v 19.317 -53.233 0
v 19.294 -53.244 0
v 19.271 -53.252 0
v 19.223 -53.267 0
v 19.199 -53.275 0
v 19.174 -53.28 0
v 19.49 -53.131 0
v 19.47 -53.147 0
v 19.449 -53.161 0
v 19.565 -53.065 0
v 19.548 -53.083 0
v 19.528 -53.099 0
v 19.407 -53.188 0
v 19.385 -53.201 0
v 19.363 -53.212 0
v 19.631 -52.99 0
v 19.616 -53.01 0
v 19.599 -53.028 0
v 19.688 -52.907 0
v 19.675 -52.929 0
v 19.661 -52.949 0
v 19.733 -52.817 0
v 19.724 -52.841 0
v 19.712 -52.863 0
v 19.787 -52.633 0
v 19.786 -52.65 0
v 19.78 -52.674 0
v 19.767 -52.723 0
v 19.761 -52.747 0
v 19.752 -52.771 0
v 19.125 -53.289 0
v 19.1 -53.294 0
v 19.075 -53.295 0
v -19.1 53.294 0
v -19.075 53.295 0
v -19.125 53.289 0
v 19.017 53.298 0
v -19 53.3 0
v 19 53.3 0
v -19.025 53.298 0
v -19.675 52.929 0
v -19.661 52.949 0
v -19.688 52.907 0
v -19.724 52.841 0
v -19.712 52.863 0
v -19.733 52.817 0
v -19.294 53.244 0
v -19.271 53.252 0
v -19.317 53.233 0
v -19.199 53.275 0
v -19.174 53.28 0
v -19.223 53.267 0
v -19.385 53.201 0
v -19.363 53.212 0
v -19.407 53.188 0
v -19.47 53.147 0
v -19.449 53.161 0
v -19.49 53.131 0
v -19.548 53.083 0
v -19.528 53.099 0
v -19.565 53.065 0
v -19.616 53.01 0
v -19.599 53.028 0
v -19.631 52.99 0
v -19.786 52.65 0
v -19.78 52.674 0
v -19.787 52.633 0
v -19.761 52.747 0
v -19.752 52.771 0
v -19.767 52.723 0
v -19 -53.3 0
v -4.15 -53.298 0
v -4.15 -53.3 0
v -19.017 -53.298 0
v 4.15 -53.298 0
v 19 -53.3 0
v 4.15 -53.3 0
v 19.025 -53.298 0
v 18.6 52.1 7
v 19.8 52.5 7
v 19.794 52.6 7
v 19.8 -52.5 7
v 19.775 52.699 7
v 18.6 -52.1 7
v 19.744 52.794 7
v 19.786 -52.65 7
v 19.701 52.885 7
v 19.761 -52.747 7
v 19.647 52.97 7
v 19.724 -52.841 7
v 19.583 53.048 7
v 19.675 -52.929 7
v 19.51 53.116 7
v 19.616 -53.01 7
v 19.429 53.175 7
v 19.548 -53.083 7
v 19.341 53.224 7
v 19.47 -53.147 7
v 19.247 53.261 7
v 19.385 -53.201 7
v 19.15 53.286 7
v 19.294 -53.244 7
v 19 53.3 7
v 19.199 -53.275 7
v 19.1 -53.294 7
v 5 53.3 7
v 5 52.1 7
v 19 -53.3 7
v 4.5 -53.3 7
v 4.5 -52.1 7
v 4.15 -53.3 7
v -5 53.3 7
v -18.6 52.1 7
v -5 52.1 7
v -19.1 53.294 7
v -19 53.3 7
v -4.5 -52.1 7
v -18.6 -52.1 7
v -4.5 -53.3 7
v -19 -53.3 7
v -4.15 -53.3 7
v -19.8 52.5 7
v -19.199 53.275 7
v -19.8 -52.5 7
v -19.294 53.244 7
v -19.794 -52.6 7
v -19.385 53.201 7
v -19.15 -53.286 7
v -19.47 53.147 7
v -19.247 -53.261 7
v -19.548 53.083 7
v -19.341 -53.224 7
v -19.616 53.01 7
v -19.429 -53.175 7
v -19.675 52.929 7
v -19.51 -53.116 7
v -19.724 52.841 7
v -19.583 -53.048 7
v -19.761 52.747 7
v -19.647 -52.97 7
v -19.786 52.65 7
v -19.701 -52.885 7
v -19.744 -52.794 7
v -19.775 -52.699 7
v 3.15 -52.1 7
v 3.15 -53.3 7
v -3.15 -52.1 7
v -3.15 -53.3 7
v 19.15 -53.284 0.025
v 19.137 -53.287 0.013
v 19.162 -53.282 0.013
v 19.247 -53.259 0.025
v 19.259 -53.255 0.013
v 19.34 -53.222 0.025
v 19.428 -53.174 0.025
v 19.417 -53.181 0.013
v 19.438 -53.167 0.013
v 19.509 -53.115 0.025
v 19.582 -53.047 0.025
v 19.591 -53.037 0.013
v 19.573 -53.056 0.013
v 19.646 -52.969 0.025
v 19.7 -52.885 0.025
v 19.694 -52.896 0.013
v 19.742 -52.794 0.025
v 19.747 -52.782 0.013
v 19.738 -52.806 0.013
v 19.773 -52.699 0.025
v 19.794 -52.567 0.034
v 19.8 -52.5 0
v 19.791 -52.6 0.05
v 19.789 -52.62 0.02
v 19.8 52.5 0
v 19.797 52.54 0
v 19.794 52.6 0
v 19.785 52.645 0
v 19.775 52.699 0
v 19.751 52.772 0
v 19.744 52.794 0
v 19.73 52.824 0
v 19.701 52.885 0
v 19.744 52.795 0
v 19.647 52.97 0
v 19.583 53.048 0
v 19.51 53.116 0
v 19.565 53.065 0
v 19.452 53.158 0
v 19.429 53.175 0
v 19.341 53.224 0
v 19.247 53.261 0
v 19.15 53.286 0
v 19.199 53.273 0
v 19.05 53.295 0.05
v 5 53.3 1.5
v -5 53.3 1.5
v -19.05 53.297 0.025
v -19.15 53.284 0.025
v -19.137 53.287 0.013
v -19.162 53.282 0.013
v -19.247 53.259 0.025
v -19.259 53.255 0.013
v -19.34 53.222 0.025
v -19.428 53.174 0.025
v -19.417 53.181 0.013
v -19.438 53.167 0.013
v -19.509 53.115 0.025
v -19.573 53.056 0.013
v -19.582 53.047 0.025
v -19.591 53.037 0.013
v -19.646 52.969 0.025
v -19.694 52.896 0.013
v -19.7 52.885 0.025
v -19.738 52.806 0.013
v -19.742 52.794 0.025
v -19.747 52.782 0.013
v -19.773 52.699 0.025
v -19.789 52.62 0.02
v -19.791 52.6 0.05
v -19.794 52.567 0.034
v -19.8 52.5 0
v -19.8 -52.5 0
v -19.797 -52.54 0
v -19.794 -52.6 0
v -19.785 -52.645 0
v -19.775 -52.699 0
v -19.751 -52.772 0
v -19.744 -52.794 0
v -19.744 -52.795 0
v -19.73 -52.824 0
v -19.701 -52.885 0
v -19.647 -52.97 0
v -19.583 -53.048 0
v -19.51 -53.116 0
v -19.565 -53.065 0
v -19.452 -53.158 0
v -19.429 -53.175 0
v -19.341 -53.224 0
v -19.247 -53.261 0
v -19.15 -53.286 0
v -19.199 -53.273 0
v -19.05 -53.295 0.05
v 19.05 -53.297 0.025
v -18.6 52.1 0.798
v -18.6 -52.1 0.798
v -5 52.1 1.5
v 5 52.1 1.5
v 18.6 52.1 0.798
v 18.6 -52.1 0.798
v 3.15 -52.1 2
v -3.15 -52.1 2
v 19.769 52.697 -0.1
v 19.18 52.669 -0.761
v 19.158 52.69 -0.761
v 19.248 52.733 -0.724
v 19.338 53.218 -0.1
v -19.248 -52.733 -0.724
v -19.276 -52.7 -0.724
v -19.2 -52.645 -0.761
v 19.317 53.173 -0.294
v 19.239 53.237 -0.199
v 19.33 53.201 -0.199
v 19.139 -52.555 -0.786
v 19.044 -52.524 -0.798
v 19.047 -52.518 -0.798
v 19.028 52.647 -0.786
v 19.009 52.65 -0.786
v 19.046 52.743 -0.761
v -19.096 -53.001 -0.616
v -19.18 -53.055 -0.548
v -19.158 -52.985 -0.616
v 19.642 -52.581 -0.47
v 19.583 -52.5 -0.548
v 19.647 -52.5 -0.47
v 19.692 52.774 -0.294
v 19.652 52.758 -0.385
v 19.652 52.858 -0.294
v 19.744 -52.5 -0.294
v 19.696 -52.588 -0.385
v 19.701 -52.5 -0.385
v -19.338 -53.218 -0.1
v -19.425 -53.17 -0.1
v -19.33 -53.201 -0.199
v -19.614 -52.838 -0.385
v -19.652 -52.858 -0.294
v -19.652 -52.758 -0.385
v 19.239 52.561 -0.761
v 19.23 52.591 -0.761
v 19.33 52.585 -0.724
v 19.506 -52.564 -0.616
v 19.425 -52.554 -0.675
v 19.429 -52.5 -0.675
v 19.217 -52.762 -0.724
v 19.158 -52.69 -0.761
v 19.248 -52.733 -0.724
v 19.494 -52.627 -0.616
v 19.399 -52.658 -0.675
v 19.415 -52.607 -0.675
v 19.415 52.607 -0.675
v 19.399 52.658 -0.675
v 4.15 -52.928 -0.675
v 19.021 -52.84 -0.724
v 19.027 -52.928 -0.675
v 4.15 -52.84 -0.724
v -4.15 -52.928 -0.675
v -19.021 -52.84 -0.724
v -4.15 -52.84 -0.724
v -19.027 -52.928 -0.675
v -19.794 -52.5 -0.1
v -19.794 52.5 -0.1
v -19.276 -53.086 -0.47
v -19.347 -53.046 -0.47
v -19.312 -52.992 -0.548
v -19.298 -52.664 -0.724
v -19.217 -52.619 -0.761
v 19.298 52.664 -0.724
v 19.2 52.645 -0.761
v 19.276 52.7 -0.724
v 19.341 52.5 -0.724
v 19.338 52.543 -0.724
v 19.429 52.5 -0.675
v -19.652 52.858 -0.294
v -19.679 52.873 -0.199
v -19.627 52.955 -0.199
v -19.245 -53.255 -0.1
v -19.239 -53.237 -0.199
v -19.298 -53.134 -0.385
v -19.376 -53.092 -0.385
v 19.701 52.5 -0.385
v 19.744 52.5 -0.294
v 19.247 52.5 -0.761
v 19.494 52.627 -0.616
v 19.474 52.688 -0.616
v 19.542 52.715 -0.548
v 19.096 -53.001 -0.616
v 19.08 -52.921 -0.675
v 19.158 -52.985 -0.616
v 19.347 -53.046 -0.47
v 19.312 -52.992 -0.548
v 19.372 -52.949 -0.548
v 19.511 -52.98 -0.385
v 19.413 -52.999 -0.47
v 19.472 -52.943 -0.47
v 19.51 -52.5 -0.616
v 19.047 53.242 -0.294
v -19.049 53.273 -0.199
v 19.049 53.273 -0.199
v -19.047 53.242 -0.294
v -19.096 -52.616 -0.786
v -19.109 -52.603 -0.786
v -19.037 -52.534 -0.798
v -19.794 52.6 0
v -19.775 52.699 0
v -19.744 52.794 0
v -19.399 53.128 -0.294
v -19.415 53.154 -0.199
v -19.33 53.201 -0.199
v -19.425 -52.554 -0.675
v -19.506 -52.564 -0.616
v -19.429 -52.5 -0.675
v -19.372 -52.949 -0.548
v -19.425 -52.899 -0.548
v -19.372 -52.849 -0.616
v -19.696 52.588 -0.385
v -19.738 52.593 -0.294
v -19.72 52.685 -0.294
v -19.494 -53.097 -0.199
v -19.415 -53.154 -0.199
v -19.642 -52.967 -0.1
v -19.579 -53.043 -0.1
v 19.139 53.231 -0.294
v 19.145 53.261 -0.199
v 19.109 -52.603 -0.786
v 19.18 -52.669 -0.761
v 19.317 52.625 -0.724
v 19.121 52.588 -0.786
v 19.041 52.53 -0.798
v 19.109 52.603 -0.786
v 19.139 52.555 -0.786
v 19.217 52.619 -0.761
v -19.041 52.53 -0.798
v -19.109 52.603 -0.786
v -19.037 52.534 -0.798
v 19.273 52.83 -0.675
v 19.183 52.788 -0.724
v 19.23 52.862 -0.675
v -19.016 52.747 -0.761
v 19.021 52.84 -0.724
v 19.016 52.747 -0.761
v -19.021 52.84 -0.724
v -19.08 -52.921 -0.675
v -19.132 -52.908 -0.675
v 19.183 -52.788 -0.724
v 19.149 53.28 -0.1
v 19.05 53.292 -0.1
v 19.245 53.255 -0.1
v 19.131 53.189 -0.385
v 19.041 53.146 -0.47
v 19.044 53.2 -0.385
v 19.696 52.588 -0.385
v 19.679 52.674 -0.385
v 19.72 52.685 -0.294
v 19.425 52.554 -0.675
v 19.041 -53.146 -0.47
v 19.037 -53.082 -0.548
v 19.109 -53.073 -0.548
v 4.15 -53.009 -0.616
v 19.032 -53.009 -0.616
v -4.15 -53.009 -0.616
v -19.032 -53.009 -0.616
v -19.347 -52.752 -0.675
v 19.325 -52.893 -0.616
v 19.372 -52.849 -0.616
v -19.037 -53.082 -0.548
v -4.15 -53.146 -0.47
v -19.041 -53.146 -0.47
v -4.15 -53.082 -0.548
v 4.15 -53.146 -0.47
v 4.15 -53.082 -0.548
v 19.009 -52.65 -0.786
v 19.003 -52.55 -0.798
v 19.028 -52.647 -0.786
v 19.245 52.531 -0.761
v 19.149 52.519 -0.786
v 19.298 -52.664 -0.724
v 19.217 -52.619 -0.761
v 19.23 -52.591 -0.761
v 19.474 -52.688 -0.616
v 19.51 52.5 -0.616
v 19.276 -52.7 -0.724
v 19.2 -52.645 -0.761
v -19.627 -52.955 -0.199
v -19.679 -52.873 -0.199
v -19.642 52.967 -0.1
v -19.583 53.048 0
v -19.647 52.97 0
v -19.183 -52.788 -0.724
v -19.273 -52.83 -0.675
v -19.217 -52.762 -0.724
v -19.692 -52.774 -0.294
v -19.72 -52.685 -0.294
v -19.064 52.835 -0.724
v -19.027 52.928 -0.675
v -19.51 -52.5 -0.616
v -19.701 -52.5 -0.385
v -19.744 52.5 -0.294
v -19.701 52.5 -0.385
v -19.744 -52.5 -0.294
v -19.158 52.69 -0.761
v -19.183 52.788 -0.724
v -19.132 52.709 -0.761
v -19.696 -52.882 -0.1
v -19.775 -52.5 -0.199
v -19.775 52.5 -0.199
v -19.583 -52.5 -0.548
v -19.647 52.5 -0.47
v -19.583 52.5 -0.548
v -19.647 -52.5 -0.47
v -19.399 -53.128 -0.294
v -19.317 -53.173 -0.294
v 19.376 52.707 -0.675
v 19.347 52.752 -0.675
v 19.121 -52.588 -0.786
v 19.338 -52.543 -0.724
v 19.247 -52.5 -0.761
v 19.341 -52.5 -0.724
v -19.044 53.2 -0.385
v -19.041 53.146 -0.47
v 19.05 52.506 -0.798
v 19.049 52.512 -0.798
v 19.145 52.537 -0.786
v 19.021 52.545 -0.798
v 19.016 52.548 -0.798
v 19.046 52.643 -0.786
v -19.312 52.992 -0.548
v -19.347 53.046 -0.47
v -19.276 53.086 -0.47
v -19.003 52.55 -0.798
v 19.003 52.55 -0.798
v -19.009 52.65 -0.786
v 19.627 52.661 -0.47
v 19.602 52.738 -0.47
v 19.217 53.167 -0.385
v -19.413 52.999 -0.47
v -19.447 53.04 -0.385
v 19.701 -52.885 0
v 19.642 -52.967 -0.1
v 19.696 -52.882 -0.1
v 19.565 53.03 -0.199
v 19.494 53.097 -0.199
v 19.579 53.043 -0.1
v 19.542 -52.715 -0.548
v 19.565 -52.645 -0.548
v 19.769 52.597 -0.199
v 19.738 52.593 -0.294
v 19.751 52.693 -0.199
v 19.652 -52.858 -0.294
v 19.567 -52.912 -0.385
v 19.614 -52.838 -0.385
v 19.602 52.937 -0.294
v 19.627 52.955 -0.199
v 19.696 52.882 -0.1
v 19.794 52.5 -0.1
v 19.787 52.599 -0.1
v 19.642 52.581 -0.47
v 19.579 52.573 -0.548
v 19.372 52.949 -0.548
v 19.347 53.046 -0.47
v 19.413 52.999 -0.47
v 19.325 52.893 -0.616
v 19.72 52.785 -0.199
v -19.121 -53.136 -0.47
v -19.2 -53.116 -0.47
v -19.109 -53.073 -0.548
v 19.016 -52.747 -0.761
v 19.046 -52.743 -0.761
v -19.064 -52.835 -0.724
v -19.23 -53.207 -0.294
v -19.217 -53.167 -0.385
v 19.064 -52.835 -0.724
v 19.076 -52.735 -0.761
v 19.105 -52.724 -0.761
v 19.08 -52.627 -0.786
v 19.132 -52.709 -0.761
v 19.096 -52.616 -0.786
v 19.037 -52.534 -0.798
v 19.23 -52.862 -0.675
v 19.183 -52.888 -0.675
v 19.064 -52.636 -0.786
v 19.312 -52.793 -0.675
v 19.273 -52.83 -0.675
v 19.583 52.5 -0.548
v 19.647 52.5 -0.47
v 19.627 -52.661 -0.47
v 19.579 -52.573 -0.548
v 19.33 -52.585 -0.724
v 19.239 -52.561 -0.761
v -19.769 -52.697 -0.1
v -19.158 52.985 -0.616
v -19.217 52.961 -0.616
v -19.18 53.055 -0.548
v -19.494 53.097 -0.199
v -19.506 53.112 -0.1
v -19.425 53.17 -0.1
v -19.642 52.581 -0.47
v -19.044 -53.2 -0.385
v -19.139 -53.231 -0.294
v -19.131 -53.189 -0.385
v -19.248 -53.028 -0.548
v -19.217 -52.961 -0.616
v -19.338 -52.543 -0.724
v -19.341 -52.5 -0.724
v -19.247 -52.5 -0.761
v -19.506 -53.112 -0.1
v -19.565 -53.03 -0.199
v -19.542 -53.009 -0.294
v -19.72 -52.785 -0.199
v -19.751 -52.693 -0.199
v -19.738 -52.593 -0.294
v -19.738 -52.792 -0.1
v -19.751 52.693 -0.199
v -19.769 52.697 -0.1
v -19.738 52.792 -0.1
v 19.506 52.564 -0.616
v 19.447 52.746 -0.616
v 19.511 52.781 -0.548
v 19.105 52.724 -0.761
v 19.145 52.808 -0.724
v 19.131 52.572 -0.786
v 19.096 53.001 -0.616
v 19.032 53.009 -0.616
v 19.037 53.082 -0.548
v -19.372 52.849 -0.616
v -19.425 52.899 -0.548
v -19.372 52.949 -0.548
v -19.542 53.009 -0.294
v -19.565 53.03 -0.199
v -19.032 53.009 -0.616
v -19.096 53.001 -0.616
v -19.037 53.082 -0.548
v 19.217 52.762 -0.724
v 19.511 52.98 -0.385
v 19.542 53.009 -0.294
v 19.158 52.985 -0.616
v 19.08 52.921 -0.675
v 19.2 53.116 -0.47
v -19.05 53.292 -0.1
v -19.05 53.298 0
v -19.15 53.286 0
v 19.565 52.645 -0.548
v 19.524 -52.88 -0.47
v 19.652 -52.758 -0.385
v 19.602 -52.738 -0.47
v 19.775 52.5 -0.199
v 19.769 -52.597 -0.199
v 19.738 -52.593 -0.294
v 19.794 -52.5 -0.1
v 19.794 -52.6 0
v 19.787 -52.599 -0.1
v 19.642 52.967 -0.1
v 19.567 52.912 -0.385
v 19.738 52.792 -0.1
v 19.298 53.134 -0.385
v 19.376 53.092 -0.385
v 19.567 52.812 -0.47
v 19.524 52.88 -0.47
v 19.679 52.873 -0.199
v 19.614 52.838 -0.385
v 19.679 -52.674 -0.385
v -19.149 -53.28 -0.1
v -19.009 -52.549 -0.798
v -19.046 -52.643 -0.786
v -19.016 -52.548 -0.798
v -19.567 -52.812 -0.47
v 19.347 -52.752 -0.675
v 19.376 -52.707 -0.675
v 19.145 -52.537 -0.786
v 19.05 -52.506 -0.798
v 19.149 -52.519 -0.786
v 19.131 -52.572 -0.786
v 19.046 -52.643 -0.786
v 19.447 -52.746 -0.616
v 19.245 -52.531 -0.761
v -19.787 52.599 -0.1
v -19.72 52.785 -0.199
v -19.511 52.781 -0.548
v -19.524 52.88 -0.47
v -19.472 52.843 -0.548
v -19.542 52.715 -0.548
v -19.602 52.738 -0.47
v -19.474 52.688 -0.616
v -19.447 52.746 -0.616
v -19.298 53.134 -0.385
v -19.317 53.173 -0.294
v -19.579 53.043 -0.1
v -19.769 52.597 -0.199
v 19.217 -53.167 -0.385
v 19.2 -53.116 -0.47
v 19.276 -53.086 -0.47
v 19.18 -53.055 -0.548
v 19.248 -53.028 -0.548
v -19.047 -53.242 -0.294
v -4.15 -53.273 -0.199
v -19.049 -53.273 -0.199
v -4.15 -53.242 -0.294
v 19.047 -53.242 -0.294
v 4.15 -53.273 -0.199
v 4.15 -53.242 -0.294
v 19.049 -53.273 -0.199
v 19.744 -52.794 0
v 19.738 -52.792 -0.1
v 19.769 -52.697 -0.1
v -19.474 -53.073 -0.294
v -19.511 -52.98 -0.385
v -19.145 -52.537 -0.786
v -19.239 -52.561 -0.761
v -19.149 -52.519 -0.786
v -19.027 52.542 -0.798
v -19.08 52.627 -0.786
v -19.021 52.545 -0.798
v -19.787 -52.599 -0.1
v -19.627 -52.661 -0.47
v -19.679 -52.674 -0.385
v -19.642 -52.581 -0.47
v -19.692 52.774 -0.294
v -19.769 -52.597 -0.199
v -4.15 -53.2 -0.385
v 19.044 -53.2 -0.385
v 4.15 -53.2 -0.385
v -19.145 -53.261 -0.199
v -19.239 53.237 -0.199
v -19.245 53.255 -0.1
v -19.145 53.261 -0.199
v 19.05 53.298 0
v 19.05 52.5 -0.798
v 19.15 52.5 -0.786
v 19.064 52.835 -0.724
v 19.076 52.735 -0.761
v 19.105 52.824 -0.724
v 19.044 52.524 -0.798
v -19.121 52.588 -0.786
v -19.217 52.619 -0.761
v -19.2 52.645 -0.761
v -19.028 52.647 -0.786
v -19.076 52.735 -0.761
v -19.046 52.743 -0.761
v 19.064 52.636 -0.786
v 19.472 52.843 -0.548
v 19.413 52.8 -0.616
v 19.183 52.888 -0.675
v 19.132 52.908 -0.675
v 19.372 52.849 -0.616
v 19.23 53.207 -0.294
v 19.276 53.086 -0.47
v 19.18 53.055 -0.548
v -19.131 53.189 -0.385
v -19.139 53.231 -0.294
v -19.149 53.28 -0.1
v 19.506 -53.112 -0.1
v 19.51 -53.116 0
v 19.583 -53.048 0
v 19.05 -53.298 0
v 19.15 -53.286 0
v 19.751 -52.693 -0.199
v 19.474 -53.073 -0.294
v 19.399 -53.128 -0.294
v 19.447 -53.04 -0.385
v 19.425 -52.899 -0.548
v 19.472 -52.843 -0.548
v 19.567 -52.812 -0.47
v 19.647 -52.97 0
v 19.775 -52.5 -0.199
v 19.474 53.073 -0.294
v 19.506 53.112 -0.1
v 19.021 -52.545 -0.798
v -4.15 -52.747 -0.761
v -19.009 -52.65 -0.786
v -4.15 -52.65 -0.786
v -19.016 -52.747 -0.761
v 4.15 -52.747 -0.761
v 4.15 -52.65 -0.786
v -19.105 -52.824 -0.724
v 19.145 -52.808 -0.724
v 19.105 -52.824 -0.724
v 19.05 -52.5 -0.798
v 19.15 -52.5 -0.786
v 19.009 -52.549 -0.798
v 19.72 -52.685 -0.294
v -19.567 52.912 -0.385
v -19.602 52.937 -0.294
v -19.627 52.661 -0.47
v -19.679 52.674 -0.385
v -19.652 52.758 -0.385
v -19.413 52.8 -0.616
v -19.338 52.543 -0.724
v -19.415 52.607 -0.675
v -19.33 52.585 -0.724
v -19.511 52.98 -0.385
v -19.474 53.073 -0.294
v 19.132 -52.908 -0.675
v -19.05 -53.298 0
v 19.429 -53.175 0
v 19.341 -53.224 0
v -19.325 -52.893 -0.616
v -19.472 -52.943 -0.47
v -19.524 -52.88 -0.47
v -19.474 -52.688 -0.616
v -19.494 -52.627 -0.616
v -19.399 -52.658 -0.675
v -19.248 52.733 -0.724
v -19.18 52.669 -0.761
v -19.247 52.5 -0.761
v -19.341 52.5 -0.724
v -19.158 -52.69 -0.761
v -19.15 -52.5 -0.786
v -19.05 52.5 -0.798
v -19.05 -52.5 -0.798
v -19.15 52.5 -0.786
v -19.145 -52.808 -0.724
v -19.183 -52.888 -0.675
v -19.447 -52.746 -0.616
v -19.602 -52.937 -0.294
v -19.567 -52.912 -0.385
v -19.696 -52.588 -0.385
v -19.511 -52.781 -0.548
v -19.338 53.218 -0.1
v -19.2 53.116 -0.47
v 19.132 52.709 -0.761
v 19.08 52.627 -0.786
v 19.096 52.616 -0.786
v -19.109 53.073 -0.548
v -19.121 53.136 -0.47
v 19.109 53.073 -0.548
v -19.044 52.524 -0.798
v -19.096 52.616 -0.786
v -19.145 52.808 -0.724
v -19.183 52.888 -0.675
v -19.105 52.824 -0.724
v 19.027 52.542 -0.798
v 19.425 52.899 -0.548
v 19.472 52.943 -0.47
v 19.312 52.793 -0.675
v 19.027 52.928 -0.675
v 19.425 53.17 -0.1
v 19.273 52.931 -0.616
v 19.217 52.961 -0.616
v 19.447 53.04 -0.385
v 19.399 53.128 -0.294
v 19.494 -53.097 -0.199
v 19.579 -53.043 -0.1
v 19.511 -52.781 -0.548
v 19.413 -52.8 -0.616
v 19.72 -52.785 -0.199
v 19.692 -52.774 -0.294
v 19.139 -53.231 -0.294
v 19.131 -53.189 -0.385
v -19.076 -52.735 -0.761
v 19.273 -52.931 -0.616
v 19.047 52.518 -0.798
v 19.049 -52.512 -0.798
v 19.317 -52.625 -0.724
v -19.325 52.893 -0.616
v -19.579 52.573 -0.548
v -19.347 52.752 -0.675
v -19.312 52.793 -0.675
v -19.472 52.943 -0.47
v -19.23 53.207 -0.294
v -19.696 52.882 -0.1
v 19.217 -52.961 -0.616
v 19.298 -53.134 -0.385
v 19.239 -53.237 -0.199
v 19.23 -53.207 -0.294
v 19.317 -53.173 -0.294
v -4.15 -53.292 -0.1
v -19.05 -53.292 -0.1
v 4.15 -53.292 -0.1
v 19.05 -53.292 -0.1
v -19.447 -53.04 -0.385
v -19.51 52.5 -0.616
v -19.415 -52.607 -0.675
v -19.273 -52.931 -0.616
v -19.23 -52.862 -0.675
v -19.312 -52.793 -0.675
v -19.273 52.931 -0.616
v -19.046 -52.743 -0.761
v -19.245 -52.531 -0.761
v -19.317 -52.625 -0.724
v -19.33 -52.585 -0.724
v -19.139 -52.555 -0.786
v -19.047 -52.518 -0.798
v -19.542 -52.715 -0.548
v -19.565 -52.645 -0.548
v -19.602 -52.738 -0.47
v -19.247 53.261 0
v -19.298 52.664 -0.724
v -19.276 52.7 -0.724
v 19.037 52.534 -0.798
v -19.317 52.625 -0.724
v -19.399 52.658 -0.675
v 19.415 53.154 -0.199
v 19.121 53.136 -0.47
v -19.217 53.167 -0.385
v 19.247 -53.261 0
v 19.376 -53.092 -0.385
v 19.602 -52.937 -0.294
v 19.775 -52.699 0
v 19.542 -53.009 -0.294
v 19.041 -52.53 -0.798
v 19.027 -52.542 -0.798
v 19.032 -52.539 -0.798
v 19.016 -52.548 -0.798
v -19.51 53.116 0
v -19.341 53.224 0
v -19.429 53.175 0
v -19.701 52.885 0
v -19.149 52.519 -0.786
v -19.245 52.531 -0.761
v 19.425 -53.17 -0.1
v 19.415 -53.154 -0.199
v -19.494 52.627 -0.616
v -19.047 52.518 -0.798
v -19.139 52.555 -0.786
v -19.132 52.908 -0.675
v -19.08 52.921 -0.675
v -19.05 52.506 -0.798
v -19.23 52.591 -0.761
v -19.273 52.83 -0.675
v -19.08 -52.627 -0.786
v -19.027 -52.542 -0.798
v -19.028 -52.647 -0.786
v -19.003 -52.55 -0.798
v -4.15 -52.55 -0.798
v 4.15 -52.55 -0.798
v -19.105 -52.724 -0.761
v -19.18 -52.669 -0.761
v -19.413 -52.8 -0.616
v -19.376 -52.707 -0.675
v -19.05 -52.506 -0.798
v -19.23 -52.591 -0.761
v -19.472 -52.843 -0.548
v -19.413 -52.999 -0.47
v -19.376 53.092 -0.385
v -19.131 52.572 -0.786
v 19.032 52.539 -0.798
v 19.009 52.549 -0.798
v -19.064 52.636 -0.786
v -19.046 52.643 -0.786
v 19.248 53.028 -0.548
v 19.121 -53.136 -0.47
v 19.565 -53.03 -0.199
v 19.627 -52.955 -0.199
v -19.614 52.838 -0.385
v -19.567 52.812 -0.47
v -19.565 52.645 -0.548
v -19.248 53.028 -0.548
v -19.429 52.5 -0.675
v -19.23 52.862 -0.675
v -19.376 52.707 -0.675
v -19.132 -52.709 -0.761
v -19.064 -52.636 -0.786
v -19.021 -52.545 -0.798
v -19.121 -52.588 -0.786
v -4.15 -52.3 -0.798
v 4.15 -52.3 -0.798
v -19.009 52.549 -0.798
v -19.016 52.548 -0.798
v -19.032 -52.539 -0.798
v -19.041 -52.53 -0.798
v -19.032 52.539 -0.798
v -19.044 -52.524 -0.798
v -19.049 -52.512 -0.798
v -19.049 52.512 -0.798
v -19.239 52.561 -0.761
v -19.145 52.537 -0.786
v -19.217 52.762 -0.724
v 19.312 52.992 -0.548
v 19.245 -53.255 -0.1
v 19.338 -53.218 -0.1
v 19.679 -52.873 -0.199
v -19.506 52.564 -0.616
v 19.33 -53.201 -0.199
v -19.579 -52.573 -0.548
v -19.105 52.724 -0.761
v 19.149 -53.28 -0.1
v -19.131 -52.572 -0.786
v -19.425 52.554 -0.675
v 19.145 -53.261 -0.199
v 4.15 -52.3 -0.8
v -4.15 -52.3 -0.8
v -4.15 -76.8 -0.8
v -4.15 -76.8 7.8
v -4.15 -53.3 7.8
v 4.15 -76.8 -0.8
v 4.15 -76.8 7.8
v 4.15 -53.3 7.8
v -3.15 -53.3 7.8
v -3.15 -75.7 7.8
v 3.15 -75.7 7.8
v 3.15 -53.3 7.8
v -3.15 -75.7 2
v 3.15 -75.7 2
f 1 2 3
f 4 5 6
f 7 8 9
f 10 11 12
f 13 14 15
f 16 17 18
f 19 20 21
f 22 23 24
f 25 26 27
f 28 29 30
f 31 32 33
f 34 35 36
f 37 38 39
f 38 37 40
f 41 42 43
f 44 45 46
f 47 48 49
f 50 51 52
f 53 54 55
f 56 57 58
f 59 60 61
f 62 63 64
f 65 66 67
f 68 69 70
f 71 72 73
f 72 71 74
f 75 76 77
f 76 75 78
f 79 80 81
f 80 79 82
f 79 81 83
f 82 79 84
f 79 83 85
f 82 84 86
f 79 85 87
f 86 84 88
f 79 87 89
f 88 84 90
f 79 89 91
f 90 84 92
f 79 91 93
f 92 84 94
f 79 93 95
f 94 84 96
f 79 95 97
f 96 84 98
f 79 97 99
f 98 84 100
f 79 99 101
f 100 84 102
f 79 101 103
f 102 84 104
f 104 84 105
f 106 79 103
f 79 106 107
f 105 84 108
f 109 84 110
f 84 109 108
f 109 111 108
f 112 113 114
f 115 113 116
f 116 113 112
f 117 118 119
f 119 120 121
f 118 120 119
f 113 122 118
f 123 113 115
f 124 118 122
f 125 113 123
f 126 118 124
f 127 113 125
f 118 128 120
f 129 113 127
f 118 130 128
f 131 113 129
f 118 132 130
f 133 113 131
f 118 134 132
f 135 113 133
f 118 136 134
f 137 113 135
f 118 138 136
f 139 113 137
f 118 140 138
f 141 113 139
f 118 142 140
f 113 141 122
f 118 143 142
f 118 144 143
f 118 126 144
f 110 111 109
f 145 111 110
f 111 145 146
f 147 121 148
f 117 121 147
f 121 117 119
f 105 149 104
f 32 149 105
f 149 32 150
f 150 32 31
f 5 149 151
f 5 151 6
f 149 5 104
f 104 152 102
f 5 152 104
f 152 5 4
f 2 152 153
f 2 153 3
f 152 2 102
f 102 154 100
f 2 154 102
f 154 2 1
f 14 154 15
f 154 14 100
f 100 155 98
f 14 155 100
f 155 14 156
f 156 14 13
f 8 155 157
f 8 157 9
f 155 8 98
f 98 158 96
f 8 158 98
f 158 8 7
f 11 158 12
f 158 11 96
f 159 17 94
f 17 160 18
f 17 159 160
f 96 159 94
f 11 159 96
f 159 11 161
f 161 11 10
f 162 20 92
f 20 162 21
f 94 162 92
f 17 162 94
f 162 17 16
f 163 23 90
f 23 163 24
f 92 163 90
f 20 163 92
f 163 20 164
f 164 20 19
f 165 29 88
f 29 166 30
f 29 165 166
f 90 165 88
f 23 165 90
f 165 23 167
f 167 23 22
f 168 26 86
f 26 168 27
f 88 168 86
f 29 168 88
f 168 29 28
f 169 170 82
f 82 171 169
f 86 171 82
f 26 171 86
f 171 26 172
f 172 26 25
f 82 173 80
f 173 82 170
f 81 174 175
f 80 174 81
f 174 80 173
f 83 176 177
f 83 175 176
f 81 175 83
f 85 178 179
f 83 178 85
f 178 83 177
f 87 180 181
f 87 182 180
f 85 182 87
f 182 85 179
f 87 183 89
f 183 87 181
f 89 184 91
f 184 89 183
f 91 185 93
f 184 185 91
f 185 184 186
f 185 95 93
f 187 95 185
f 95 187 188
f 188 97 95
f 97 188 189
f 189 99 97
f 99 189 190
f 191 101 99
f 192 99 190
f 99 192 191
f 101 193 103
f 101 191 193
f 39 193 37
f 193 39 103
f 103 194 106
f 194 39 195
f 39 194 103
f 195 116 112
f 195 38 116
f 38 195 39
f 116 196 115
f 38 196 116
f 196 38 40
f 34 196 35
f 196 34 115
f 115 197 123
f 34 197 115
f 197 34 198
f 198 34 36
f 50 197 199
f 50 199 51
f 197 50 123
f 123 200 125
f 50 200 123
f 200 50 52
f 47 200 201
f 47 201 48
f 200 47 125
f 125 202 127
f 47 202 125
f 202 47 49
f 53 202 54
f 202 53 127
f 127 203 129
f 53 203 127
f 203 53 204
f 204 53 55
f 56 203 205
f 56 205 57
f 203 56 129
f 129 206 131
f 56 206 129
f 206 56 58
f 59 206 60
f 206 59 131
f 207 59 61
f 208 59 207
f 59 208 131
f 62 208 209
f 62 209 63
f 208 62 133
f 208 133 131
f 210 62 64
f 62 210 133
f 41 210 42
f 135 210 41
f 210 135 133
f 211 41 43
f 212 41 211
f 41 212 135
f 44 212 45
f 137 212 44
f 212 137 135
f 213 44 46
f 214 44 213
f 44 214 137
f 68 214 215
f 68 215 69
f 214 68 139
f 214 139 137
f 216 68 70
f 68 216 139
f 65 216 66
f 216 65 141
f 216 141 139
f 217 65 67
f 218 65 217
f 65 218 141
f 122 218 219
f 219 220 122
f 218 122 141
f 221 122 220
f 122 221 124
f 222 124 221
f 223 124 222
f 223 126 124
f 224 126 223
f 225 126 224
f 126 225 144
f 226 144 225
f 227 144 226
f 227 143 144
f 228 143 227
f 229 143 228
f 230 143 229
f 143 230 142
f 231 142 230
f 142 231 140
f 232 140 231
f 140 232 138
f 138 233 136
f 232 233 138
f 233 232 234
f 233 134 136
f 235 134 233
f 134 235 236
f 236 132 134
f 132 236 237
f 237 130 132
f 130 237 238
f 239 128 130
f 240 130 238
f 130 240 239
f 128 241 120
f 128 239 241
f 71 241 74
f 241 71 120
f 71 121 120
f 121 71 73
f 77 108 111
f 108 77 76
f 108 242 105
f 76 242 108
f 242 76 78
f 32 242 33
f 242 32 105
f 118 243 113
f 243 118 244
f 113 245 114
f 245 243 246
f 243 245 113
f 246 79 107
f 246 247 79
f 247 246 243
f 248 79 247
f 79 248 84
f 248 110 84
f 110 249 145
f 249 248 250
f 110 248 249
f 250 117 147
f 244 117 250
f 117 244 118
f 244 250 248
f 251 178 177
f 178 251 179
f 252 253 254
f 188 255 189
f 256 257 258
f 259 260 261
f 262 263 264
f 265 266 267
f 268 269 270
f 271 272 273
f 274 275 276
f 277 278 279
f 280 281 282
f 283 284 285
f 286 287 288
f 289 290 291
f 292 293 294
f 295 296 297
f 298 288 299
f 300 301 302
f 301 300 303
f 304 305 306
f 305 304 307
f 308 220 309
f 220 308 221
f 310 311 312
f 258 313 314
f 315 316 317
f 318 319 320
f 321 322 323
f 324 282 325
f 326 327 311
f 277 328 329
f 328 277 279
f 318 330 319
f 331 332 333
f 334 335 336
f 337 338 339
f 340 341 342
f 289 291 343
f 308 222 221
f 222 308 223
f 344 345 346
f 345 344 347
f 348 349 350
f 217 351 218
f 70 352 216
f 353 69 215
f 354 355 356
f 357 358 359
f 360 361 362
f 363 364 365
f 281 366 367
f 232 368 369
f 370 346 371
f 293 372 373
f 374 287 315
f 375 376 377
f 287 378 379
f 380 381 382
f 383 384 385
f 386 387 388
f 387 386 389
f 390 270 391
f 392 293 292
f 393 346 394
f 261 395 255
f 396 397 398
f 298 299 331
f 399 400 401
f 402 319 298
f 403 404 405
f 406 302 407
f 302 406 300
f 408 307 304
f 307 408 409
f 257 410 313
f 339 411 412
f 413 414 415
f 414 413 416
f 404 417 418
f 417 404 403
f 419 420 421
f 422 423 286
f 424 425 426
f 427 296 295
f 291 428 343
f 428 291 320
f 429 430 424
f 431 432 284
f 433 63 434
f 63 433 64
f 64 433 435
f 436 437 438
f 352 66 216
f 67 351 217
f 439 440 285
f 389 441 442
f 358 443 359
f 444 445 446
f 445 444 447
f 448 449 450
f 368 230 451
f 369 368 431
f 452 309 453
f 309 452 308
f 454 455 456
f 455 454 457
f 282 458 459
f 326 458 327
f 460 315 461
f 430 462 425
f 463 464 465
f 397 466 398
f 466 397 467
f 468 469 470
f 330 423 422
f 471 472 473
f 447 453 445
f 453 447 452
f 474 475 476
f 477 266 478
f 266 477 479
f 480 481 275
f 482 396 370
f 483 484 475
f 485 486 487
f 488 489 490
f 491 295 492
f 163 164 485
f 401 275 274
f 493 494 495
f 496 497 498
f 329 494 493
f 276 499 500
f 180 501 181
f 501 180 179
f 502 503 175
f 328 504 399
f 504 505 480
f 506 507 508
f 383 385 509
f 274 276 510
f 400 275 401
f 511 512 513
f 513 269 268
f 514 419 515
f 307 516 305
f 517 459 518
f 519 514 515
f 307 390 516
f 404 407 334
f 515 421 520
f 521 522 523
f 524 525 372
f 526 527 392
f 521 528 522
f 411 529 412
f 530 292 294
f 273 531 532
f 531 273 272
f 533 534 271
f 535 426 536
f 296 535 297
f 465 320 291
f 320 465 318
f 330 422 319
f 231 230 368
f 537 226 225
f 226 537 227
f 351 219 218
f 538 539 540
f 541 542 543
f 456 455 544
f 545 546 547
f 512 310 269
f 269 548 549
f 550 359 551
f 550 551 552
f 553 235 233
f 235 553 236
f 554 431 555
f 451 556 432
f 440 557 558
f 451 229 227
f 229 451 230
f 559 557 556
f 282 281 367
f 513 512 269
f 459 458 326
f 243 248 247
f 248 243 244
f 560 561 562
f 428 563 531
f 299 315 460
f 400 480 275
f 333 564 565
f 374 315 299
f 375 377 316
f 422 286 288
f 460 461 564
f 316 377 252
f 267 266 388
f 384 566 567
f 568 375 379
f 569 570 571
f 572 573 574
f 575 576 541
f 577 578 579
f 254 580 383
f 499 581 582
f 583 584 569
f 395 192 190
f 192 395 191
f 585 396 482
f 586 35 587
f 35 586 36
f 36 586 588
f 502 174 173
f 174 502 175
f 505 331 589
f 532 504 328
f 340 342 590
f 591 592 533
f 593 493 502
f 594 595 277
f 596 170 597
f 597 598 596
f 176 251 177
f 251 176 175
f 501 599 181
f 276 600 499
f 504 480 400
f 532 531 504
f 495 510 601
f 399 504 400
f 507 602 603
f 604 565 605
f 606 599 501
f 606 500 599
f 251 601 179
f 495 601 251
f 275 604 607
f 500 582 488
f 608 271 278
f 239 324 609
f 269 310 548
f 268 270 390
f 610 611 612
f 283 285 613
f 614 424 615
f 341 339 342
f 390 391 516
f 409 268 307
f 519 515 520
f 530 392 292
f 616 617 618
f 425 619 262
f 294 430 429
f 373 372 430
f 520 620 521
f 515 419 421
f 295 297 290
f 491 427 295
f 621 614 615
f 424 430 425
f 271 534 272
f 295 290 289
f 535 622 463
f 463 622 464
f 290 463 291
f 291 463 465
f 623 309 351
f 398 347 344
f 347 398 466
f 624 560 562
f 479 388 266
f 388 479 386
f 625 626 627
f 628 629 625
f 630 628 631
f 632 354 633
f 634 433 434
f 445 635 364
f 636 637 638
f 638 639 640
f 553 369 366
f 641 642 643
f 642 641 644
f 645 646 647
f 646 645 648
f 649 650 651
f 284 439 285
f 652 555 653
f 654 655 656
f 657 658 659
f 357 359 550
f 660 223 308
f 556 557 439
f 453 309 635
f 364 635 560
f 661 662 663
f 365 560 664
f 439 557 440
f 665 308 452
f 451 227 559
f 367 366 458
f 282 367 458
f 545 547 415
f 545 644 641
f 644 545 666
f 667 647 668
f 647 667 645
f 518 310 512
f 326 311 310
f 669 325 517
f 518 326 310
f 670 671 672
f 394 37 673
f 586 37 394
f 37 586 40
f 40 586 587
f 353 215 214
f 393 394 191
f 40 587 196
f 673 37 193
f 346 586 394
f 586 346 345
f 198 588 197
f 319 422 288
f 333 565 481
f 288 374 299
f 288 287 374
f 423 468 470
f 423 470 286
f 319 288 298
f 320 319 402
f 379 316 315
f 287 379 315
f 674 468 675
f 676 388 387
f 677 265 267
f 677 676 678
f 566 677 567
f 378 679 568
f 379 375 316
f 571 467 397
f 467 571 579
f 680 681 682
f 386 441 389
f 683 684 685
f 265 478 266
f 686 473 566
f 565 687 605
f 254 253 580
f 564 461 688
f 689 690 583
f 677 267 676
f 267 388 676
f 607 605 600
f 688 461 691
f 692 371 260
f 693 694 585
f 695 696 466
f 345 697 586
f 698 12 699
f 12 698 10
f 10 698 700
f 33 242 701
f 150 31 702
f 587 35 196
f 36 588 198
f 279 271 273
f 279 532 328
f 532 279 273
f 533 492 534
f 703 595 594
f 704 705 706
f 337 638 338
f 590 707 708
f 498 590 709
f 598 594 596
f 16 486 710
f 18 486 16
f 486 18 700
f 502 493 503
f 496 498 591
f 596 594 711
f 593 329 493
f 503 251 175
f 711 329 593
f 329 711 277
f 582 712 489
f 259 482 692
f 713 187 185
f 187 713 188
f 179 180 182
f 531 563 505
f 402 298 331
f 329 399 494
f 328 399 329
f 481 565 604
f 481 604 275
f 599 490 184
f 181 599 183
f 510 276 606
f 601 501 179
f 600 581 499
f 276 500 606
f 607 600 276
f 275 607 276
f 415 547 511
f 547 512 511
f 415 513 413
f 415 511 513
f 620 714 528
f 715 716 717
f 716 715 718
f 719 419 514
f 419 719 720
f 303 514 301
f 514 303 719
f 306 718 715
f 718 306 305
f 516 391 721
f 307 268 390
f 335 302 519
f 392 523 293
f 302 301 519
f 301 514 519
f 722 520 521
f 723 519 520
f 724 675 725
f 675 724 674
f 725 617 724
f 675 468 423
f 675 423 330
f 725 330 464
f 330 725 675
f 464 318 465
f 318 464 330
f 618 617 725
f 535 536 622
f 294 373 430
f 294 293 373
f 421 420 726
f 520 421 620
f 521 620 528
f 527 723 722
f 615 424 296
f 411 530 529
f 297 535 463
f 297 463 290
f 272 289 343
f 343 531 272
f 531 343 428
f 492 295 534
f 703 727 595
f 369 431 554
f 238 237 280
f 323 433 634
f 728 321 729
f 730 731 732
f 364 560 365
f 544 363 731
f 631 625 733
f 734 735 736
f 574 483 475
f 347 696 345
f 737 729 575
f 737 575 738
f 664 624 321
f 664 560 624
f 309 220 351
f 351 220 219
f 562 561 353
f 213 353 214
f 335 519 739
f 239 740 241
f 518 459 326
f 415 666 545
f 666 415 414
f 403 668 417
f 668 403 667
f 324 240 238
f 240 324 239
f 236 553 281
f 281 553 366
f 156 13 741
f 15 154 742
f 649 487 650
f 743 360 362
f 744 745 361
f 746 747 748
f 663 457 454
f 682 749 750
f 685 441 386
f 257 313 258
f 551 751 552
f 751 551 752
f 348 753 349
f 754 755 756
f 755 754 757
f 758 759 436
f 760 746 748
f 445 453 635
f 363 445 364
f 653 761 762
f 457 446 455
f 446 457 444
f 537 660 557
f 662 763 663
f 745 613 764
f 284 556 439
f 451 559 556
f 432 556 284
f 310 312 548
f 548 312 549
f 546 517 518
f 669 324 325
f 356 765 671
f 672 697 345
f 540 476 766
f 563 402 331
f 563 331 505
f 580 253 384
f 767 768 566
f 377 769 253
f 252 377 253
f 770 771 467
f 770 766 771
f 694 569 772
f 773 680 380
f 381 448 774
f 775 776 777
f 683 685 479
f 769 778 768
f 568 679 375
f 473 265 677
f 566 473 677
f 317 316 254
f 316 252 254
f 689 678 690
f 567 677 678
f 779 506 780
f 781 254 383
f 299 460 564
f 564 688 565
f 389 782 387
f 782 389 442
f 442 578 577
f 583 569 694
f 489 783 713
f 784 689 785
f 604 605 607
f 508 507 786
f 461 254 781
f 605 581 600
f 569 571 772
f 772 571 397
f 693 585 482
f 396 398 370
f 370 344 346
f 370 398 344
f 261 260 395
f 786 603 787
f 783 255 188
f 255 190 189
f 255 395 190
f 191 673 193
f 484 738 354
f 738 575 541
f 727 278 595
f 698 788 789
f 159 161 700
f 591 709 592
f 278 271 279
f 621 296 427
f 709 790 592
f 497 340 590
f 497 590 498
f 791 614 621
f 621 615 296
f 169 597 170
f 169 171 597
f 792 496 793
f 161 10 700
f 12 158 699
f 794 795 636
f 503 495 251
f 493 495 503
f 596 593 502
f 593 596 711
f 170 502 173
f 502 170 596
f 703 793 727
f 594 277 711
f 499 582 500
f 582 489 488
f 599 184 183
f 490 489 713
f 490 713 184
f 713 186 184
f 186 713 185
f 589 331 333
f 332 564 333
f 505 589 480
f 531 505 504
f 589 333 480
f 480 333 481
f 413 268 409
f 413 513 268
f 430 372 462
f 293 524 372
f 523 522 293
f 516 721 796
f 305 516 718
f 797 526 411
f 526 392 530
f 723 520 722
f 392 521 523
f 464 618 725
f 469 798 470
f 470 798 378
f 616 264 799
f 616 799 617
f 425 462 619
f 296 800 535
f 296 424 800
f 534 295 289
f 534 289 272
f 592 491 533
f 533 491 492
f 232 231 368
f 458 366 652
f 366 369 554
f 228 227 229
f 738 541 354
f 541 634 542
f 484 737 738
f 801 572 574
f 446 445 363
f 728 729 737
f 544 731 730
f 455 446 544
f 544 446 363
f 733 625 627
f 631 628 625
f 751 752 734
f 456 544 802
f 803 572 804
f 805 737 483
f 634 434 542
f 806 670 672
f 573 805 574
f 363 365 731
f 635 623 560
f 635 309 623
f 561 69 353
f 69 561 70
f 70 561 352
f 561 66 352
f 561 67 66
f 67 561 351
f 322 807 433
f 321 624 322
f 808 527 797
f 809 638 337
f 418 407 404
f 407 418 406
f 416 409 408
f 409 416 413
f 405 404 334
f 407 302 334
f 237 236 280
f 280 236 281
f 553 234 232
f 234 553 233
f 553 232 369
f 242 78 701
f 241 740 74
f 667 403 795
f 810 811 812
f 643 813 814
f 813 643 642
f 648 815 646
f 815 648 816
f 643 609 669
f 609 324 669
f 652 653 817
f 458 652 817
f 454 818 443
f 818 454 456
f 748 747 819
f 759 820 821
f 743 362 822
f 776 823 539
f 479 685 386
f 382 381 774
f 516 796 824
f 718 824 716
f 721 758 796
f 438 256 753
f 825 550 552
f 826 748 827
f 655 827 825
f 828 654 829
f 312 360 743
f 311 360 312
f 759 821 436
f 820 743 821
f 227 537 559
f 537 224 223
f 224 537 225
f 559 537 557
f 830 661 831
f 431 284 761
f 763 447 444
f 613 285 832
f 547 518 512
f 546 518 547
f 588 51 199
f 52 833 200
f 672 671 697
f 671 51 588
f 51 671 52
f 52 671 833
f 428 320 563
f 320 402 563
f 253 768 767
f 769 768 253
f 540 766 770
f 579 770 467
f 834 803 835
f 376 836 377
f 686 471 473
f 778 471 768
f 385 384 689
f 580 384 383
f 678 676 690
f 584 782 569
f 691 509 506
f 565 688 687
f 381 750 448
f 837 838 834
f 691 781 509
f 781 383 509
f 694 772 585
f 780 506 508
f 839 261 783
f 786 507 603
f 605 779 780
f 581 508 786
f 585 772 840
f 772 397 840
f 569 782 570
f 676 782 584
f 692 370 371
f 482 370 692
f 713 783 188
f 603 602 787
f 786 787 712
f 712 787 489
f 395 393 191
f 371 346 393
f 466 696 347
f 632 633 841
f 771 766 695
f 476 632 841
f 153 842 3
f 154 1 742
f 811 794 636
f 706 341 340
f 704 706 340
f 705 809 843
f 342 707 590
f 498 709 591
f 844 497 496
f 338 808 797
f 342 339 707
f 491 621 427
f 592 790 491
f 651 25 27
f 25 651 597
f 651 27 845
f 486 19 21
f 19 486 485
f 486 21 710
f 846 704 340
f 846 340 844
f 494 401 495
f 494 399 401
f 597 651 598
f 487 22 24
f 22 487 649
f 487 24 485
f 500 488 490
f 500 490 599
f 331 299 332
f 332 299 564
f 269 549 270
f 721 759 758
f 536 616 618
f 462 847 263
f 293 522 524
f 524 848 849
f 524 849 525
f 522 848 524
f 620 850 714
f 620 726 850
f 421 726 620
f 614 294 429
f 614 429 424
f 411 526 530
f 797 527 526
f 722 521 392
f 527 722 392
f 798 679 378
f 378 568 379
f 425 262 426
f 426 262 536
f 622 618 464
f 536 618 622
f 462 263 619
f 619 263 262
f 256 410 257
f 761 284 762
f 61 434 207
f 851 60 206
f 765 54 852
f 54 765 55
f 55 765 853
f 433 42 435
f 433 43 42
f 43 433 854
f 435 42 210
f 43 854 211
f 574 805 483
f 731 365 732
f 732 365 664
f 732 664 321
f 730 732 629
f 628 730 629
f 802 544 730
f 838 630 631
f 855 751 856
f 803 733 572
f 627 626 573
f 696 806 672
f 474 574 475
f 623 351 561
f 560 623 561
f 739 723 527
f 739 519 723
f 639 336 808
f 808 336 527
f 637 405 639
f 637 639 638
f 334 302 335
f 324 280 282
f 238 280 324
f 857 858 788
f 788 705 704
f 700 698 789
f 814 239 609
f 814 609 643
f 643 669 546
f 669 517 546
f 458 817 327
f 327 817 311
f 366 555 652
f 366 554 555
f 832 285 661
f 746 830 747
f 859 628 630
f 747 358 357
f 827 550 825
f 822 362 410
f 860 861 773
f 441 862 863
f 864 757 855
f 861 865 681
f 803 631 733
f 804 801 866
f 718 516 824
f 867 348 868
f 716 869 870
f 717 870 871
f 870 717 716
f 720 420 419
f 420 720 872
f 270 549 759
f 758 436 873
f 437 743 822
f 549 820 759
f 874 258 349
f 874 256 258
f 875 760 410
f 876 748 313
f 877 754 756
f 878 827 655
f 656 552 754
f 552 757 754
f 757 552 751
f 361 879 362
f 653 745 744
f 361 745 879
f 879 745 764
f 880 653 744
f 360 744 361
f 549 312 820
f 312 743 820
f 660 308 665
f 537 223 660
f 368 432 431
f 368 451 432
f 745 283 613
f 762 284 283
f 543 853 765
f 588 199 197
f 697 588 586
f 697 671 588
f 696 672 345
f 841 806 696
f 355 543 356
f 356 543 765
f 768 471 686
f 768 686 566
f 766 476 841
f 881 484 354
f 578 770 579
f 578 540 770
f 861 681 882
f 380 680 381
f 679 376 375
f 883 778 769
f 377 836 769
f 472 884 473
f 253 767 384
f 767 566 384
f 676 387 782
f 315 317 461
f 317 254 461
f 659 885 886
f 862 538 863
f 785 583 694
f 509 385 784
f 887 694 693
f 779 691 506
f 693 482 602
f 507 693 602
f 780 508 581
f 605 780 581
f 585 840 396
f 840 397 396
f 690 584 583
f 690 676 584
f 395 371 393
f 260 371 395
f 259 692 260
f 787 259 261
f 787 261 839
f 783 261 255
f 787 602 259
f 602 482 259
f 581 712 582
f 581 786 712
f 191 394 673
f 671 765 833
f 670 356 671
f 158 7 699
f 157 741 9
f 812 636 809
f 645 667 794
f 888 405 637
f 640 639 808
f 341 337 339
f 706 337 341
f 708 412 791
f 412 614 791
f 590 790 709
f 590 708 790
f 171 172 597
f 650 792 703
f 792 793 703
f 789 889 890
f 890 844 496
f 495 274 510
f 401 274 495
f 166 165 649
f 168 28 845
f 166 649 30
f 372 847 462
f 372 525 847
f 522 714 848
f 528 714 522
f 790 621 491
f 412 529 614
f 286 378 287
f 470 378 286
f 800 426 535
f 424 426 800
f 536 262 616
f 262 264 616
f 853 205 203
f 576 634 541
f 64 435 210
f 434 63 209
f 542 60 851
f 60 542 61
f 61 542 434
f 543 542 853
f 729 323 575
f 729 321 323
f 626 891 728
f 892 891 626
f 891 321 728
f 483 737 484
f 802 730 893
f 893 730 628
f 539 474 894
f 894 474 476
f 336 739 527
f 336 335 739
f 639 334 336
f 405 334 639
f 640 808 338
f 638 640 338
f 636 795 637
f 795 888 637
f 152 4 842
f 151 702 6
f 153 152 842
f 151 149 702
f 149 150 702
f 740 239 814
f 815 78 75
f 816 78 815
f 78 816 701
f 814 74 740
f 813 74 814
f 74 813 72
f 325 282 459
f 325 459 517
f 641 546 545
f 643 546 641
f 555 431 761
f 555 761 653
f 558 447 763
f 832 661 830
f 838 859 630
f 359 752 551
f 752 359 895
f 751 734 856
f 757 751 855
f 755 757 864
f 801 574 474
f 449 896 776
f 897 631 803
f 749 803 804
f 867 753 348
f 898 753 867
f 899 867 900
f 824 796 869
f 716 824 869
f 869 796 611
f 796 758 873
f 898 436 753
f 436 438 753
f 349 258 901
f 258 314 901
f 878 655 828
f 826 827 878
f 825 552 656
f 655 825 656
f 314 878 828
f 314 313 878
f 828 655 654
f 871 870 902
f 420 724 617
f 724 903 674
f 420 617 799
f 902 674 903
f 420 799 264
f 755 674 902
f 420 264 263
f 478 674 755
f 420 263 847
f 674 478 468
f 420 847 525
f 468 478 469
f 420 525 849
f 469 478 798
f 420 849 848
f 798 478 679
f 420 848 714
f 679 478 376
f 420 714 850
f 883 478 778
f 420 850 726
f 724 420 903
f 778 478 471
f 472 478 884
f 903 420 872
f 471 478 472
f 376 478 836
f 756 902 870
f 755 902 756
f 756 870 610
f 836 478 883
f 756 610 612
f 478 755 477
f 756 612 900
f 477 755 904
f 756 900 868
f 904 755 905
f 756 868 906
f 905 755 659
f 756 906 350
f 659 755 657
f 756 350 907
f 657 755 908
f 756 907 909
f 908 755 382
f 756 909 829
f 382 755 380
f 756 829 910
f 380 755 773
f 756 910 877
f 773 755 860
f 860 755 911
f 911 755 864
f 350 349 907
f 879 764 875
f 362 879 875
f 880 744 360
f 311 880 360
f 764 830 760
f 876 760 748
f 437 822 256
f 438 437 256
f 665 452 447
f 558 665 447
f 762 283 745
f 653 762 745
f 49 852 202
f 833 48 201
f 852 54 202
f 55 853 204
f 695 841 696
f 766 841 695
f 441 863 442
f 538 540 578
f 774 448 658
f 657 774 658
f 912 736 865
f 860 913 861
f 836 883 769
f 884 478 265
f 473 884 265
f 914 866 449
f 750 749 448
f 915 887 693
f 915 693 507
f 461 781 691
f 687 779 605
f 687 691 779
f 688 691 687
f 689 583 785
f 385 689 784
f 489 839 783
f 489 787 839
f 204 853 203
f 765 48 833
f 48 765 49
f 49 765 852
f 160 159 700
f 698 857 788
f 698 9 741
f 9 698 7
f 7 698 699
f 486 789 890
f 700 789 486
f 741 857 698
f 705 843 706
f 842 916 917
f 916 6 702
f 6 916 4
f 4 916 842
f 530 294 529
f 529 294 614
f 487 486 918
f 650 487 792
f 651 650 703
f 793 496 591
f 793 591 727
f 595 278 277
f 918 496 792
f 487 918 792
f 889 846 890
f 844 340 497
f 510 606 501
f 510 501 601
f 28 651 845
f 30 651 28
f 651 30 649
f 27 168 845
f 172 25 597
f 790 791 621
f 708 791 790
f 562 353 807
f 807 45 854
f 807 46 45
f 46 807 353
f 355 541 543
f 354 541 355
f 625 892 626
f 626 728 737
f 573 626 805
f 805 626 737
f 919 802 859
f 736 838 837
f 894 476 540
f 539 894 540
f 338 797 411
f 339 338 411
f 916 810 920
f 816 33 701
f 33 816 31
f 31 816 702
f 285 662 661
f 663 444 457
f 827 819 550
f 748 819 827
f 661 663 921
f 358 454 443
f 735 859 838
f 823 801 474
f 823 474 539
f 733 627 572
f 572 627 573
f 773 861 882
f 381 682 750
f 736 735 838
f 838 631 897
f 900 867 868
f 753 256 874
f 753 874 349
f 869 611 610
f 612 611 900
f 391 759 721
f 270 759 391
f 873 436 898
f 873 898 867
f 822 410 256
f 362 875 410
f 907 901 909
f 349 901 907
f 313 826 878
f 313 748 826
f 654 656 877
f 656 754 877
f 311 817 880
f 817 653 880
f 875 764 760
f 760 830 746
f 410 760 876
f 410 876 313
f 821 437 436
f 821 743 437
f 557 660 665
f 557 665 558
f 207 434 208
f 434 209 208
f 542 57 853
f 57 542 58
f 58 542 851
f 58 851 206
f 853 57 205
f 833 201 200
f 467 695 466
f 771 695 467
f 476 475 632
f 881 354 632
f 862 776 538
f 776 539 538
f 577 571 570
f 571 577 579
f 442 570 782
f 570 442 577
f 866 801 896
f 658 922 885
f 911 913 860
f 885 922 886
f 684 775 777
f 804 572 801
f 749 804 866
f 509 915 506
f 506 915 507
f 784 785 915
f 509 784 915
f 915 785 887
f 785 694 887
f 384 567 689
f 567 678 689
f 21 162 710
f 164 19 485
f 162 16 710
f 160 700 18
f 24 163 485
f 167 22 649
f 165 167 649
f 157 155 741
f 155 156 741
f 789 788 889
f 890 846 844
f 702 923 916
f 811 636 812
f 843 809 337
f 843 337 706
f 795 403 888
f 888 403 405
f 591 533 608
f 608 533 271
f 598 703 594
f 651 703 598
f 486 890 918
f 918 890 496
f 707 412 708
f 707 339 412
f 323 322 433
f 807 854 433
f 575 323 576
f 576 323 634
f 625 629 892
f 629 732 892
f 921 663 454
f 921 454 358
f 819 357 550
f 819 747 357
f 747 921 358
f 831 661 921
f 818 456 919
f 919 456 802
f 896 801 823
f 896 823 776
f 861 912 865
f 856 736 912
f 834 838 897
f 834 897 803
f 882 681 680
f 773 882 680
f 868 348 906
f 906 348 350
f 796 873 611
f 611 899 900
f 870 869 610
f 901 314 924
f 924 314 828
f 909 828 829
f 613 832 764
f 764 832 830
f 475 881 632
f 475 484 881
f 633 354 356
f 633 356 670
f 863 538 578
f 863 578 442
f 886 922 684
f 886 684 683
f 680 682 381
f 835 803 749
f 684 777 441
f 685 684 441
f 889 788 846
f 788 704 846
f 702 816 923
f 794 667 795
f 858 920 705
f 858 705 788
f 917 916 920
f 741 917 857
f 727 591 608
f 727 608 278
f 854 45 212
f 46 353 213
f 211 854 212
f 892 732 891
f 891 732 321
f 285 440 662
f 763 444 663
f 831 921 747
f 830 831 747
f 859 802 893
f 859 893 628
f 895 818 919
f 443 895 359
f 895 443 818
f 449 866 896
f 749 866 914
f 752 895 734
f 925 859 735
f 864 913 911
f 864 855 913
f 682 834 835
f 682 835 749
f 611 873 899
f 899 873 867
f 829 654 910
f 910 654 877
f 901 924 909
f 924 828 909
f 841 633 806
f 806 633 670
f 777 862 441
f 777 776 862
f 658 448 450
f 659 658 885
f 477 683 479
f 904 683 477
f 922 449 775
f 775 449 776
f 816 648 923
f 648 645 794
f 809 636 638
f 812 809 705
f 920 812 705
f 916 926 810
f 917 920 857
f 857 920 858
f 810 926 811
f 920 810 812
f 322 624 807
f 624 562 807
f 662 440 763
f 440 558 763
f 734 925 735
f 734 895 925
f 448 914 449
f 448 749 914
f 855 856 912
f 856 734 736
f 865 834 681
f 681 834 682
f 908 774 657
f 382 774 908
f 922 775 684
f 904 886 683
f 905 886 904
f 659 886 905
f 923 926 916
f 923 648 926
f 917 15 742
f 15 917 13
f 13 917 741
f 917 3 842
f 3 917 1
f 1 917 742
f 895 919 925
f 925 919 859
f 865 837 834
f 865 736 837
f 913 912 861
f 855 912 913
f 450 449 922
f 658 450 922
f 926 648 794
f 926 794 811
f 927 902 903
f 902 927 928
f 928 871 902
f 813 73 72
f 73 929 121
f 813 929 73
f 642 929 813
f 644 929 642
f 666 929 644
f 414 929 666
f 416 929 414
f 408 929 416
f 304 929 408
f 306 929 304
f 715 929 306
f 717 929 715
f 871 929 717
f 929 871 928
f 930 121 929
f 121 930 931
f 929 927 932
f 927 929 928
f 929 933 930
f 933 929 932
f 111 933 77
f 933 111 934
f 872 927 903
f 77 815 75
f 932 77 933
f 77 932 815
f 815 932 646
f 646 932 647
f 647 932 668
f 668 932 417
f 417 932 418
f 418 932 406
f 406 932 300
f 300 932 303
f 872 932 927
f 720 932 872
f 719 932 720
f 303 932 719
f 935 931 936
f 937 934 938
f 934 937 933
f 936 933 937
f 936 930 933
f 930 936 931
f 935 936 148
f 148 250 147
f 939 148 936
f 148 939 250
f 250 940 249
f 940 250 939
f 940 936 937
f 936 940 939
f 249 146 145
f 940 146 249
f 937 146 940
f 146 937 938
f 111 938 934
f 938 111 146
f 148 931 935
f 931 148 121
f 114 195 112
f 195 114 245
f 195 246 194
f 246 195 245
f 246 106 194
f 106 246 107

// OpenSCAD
$fn=50;

BOX_W = 38; // Box Width
BOX_L = 105;// Box Length
BOX_H = 7.0; // Box Height

CORNER_RADIUS = 0.8; // Radius of corners

WALL = 0.8;// Wall Thickness all sides

MIC_OUTSIDE_WIDTH=8.3;
MIC_OUTSIDE_HEIGHT=8.6;
MIC_INSIDE_WIDTH=6.3;
MIC_LENGTH=24.5;

MIC_OFFSET_X = 0;
MIC_OFFSET_Y = -34.3;
MIC_OFFSET_Z = -0.5;

VENT_OFFSET = -4.5;
VENT_L = 19.0;
VENT_R = -19.0;

module sq_vent(x, y, vent_offset) {
    translate([x, y, BOX_H + vent_offset]) {
        rotate([90, 0, 90]) {
            linear_extrude(2.5) square([2, 2], center=true);
        }
    }
}

module vent(x, y, vent_offset) {
    translate([x, y, BOX_H + vent_offset]) {
        rotate([90, 0, 90]) {
            cylinder(h=3.0, d=2.0, center=true);
        }
    }
}

difference() {
    union() {
        linear_extrude( BOX_H )
        difference(){
            offset(r=CORNER_RADIUS) square( [BOX_W, BOX_L], center=true );
            offset(r= CORNER_RADIUS - WALL) square([BOX_W-WALL, BOX_L-WALL], center=true );
        };
        coordinates = [ [0,0],[0,BOX_L],[BOX_W,BOX_L],[BOX_W,0] ];
        translate ( [-BOX_W/2, -BOX_L/2] )
            hull()
            for (i = coordinates)
            translate(i) sphere(CORNER_RADIUS);
            
        translate([MIC_OFFSET_X, MIC_OFFSET_Y, MIC_OFFSET_Z]){
            // mic box
            translate([0,-18.0,BOX_H-3])
            rotate([90,0,0])
            linear_extrude(MIC_LENGTH)square([MIC_OUTSIDE_WIDTH,MIC_OUTSIDE_HEIGHT], center=true);
        }
    }
    translate([MIC_OFFSET_X, MIC_OFFSET_Y, MIC_OFFSET_Z]){
        // inside mic channel
        translate([0,-13.8,BOX_H-0.2]) // inside
        rotate([90,0,0])
        linear_extrude(MIC_LENGTH+3.1) square([MIC_INSIDE_WIDTH,MIC_OUTSIDE_HEIGHT], center=true); 
        
        // mic lid clearance at mic box opening
        translate([0,-17,BOX_H+1.60])
        rotate([90,0,0])
        linear_extrude(2.0) square([9,2.2], center=true);   
    }
    // cable exit
    translate([0,54.0,BOX_H-2.5])
    rotate([90,0,0])
    #linear_extrude(3.0) square([10,6], center=true);
    
    /*
    // gas sensor vents
    vent(VENT_L, 29.0, VENT_OFFSET);
    vent(VENT_L, 21.0, VENT_OFFSET);
    vent(VENT_L, 13.0, VENT_OFFSET);
    vent(VENT_L, 5.0, VENT_OFFSET);
    vent(VENT_L, -3.0, VENT_OFFSET);
    vent(VENT_L, -11.0, VENT_OFFSET);
    
    vent(VENT_R, 29.0, VENT_OFFSET);
    vent(VENT_R, 21.0, VENT_OFFSET);
    vent(VENT_R, 13.0, VENT_OFFSET);
    vent(VENT_R, 5.0, VENT_OFFSET);
    vent(VENT_R, -3.0, VENT_OFFSET);
    vent(VENT_R, -11.0, VENT_OFFSET);
    */
}
